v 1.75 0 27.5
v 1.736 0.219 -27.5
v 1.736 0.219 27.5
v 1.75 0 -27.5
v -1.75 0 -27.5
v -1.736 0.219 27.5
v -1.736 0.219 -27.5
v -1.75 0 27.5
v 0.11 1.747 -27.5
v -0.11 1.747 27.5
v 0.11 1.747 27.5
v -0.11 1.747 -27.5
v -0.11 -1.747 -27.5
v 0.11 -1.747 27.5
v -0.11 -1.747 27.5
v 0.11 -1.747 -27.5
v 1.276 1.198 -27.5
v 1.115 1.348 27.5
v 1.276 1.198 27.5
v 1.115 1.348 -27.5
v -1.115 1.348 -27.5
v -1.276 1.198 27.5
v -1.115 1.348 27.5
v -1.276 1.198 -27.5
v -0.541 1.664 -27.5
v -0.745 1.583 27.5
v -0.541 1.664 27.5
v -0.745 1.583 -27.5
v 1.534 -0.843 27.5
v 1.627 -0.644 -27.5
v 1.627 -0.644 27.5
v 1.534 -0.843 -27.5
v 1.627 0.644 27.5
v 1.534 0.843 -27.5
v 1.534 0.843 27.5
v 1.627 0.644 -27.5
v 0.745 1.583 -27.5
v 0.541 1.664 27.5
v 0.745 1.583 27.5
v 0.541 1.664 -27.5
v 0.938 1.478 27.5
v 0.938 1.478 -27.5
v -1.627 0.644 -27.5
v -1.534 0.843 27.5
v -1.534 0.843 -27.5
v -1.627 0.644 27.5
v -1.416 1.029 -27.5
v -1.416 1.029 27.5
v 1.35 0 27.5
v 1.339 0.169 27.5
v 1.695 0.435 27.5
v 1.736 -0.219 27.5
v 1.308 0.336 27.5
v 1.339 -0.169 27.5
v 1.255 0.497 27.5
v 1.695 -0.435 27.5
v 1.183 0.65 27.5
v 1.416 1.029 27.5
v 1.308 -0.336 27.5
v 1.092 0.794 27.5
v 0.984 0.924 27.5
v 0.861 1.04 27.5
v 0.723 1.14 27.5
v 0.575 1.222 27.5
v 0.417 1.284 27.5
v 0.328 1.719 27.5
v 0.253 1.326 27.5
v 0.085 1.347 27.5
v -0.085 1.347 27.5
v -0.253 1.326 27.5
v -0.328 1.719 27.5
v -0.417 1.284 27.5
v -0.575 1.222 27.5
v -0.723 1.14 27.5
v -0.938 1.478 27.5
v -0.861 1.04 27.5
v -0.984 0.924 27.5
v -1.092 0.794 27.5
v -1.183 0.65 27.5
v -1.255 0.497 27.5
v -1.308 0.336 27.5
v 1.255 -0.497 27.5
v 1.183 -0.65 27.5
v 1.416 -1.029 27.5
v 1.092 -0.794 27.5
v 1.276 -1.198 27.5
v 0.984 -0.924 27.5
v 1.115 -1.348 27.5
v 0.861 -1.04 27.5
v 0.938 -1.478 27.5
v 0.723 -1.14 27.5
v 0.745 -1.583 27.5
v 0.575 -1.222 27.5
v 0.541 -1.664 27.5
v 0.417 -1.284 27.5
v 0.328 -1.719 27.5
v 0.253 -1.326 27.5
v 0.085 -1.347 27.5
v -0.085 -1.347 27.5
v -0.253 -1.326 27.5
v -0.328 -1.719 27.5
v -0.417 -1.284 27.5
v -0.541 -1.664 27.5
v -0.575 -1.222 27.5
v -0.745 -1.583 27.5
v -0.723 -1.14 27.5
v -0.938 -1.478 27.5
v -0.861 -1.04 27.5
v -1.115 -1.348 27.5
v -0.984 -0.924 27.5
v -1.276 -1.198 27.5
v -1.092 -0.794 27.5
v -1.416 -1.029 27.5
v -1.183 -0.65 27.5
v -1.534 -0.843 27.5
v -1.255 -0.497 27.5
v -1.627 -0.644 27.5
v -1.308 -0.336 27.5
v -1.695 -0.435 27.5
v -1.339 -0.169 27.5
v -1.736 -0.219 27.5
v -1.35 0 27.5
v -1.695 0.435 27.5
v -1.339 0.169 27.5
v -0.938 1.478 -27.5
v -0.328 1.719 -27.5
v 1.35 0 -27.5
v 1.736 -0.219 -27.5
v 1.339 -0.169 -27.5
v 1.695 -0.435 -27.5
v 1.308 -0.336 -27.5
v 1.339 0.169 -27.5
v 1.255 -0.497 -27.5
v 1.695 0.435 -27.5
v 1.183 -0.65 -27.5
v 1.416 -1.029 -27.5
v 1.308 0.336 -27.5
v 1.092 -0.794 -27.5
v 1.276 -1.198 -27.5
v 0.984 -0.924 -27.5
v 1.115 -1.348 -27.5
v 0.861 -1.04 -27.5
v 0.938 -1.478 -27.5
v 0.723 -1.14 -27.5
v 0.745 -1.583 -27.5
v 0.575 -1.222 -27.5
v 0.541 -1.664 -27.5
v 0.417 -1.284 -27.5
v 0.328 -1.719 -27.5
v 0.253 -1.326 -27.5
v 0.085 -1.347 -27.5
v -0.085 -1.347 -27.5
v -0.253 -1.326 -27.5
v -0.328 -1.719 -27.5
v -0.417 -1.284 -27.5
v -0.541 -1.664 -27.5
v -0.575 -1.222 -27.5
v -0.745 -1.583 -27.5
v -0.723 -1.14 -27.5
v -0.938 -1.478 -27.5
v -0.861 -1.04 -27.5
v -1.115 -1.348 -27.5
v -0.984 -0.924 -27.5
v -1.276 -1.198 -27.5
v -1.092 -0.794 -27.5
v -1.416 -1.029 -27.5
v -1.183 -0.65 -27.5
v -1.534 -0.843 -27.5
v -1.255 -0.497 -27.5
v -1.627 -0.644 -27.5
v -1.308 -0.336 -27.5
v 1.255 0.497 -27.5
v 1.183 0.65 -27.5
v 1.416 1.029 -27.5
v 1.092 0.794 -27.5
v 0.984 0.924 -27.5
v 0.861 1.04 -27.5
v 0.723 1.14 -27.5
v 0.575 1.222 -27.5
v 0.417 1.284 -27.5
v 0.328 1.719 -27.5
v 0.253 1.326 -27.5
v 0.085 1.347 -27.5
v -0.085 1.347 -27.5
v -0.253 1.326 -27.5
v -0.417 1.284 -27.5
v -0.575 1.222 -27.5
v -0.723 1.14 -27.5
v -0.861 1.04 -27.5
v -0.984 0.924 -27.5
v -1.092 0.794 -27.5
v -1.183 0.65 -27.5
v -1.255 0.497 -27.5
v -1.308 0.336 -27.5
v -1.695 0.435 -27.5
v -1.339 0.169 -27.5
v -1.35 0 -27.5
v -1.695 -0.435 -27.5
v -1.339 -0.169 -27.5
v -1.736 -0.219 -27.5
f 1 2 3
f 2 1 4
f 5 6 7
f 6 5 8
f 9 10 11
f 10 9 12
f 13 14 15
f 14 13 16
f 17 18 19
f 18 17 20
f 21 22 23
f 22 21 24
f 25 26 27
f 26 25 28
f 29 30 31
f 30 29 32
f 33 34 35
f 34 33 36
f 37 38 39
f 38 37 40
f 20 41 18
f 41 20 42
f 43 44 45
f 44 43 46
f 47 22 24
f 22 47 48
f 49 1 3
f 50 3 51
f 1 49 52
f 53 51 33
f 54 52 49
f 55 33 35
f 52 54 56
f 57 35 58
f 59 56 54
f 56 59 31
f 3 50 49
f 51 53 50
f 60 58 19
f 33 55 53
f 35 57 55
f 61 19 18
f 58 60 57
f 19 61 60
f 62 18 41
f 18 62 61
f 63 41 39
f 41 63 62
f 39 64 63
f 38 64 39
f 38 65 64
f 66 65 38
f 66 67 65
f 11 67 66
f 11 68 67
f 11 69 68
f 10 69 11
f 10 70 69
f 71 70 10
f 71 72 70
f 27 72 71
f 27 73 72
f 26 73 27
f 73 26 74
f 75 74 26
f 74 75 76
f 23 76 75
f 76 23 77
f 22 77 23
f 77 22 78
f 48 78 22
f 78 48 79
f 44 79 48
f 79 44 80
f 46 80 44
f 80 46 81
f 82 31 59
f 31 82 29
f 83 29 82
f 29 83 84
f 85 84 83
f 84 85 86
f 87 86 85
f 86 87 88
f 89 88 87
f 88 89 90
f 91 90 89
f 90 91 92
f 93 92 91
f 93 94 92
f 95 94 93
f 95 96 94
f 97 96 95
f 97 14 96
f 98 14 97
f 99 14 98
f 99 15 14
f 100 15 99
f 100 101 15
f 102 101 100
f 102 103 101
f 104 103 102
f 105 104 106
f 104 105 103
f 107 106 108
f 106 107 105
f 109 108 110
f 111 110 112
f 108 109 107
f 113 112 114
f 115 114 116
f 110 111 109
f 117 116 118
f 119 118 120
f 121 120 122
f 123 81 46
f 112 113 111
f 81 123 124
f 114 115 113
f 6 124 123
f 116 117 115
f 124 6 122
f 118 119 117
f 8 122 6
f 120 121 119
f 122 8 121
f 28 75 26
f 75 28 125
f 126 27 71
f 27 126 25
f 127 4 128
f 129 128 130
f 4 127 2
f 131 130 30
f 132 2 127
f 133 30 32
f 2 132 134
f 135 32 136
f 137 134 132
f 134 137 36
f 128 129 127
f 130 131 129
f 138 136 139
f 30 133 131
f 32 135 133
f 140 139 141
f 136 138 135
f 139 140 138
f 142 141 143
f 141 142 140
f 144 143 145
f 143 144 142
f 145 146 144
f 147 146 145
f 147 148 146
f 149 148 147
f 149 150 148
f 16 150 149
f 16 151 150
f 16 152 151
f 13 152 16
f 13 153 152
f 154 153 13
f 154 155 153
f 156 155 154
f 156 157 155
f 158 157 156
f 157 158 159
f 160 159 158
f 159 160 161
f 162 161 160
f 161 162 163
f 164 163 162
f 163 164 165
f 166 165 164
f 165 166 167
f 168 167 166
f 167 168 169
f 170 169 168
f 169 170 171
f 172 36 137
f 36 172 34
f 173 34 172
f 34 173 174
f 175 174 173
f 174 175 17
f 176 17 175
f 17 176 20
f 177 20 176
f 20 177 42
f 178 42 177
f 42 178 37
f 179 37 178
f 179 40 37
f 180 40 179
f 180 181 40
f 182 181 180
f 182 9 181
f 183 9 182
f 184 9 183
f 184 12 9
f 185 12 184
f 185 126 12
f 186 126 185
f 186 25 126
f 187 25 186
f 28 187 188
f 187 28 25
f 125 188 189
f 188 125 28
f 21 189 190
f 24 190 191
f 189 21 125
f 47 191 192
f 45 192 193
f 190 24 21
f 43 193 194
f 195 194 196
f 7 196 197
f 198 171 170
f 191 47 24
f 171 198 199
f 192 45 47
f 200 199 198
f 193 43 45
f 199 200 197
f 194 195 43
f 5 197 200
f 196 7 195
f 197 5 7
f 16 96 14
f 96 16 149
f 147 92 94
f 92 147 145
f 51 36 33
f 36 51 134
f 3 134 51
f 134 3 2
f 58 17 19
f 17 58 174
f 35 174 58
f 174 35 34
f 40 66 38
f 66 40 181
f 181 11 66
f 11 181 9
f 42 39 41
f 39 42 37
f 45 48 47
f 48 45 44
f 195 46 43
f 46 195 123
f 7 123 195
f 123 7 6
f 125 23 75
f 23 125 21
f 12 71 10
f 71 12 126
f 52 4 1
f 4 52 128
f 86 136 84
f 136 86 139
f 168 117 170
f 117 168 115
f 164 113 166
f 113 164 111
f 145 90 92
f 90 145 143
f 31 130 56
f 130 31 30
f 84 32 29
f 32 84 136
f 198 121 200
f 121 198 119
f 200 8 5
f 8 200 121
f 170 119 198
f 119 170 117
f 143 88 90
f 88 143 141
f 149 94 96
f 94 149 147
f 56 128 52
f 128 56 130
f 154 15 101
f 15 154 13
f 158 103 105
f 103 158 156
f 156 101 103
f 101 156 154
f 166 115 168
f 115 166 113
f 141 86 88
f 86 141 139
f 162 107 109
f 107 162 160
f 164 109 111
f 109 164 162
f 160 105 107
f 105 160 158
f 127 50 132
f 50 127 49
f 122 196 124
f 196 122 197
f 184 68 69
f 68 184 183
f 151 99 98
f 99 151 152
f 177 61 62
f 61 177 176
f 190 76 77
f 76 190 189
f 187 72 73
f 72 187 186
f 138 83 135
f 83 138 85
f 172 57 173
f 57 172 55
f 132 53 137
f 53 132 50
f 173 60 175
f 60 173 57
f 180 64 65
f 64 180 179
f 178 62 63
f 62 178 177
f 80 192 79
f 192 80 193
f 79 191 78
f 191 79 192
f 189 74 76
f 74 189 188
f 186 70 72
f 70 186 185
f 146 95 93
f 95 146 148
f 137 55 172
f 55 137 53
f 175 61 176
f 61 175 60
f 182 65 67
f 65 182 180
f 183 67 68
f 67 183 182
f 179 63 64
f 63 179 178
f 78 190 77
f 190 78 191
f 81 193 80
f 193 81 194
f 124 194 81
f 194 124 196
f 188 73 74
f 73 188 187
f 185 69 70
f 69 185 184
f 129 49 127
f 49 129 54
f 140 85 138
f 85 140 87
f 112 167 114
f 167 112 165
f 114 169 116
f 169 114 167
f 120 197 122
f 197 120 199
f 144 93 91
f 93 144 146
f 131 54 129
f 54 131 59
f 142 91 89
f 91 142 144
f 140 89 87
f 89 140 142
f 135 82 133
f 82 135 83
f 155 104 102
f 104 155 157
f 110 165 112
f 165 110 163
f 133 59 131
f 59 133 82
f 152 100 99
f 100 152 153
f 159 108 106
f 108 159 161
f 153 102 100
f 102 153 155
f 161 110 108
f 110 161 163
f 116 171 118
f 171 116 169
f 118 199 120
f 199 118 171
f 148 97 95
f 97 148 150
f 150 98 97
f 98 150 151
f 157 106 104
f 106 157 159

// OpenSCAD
$fn = 50;


difference() {
	union() {
		translate(v = [0, 0, -27.5000000000]) {
			cylinder(h = 55, r = 1.7500000000);
		}
	}
	union() {
		translate(v = [0, 0, -100.0000000000]) {
			cylinder(h = 200, r = 1.3500000000);
		}
	}
}
